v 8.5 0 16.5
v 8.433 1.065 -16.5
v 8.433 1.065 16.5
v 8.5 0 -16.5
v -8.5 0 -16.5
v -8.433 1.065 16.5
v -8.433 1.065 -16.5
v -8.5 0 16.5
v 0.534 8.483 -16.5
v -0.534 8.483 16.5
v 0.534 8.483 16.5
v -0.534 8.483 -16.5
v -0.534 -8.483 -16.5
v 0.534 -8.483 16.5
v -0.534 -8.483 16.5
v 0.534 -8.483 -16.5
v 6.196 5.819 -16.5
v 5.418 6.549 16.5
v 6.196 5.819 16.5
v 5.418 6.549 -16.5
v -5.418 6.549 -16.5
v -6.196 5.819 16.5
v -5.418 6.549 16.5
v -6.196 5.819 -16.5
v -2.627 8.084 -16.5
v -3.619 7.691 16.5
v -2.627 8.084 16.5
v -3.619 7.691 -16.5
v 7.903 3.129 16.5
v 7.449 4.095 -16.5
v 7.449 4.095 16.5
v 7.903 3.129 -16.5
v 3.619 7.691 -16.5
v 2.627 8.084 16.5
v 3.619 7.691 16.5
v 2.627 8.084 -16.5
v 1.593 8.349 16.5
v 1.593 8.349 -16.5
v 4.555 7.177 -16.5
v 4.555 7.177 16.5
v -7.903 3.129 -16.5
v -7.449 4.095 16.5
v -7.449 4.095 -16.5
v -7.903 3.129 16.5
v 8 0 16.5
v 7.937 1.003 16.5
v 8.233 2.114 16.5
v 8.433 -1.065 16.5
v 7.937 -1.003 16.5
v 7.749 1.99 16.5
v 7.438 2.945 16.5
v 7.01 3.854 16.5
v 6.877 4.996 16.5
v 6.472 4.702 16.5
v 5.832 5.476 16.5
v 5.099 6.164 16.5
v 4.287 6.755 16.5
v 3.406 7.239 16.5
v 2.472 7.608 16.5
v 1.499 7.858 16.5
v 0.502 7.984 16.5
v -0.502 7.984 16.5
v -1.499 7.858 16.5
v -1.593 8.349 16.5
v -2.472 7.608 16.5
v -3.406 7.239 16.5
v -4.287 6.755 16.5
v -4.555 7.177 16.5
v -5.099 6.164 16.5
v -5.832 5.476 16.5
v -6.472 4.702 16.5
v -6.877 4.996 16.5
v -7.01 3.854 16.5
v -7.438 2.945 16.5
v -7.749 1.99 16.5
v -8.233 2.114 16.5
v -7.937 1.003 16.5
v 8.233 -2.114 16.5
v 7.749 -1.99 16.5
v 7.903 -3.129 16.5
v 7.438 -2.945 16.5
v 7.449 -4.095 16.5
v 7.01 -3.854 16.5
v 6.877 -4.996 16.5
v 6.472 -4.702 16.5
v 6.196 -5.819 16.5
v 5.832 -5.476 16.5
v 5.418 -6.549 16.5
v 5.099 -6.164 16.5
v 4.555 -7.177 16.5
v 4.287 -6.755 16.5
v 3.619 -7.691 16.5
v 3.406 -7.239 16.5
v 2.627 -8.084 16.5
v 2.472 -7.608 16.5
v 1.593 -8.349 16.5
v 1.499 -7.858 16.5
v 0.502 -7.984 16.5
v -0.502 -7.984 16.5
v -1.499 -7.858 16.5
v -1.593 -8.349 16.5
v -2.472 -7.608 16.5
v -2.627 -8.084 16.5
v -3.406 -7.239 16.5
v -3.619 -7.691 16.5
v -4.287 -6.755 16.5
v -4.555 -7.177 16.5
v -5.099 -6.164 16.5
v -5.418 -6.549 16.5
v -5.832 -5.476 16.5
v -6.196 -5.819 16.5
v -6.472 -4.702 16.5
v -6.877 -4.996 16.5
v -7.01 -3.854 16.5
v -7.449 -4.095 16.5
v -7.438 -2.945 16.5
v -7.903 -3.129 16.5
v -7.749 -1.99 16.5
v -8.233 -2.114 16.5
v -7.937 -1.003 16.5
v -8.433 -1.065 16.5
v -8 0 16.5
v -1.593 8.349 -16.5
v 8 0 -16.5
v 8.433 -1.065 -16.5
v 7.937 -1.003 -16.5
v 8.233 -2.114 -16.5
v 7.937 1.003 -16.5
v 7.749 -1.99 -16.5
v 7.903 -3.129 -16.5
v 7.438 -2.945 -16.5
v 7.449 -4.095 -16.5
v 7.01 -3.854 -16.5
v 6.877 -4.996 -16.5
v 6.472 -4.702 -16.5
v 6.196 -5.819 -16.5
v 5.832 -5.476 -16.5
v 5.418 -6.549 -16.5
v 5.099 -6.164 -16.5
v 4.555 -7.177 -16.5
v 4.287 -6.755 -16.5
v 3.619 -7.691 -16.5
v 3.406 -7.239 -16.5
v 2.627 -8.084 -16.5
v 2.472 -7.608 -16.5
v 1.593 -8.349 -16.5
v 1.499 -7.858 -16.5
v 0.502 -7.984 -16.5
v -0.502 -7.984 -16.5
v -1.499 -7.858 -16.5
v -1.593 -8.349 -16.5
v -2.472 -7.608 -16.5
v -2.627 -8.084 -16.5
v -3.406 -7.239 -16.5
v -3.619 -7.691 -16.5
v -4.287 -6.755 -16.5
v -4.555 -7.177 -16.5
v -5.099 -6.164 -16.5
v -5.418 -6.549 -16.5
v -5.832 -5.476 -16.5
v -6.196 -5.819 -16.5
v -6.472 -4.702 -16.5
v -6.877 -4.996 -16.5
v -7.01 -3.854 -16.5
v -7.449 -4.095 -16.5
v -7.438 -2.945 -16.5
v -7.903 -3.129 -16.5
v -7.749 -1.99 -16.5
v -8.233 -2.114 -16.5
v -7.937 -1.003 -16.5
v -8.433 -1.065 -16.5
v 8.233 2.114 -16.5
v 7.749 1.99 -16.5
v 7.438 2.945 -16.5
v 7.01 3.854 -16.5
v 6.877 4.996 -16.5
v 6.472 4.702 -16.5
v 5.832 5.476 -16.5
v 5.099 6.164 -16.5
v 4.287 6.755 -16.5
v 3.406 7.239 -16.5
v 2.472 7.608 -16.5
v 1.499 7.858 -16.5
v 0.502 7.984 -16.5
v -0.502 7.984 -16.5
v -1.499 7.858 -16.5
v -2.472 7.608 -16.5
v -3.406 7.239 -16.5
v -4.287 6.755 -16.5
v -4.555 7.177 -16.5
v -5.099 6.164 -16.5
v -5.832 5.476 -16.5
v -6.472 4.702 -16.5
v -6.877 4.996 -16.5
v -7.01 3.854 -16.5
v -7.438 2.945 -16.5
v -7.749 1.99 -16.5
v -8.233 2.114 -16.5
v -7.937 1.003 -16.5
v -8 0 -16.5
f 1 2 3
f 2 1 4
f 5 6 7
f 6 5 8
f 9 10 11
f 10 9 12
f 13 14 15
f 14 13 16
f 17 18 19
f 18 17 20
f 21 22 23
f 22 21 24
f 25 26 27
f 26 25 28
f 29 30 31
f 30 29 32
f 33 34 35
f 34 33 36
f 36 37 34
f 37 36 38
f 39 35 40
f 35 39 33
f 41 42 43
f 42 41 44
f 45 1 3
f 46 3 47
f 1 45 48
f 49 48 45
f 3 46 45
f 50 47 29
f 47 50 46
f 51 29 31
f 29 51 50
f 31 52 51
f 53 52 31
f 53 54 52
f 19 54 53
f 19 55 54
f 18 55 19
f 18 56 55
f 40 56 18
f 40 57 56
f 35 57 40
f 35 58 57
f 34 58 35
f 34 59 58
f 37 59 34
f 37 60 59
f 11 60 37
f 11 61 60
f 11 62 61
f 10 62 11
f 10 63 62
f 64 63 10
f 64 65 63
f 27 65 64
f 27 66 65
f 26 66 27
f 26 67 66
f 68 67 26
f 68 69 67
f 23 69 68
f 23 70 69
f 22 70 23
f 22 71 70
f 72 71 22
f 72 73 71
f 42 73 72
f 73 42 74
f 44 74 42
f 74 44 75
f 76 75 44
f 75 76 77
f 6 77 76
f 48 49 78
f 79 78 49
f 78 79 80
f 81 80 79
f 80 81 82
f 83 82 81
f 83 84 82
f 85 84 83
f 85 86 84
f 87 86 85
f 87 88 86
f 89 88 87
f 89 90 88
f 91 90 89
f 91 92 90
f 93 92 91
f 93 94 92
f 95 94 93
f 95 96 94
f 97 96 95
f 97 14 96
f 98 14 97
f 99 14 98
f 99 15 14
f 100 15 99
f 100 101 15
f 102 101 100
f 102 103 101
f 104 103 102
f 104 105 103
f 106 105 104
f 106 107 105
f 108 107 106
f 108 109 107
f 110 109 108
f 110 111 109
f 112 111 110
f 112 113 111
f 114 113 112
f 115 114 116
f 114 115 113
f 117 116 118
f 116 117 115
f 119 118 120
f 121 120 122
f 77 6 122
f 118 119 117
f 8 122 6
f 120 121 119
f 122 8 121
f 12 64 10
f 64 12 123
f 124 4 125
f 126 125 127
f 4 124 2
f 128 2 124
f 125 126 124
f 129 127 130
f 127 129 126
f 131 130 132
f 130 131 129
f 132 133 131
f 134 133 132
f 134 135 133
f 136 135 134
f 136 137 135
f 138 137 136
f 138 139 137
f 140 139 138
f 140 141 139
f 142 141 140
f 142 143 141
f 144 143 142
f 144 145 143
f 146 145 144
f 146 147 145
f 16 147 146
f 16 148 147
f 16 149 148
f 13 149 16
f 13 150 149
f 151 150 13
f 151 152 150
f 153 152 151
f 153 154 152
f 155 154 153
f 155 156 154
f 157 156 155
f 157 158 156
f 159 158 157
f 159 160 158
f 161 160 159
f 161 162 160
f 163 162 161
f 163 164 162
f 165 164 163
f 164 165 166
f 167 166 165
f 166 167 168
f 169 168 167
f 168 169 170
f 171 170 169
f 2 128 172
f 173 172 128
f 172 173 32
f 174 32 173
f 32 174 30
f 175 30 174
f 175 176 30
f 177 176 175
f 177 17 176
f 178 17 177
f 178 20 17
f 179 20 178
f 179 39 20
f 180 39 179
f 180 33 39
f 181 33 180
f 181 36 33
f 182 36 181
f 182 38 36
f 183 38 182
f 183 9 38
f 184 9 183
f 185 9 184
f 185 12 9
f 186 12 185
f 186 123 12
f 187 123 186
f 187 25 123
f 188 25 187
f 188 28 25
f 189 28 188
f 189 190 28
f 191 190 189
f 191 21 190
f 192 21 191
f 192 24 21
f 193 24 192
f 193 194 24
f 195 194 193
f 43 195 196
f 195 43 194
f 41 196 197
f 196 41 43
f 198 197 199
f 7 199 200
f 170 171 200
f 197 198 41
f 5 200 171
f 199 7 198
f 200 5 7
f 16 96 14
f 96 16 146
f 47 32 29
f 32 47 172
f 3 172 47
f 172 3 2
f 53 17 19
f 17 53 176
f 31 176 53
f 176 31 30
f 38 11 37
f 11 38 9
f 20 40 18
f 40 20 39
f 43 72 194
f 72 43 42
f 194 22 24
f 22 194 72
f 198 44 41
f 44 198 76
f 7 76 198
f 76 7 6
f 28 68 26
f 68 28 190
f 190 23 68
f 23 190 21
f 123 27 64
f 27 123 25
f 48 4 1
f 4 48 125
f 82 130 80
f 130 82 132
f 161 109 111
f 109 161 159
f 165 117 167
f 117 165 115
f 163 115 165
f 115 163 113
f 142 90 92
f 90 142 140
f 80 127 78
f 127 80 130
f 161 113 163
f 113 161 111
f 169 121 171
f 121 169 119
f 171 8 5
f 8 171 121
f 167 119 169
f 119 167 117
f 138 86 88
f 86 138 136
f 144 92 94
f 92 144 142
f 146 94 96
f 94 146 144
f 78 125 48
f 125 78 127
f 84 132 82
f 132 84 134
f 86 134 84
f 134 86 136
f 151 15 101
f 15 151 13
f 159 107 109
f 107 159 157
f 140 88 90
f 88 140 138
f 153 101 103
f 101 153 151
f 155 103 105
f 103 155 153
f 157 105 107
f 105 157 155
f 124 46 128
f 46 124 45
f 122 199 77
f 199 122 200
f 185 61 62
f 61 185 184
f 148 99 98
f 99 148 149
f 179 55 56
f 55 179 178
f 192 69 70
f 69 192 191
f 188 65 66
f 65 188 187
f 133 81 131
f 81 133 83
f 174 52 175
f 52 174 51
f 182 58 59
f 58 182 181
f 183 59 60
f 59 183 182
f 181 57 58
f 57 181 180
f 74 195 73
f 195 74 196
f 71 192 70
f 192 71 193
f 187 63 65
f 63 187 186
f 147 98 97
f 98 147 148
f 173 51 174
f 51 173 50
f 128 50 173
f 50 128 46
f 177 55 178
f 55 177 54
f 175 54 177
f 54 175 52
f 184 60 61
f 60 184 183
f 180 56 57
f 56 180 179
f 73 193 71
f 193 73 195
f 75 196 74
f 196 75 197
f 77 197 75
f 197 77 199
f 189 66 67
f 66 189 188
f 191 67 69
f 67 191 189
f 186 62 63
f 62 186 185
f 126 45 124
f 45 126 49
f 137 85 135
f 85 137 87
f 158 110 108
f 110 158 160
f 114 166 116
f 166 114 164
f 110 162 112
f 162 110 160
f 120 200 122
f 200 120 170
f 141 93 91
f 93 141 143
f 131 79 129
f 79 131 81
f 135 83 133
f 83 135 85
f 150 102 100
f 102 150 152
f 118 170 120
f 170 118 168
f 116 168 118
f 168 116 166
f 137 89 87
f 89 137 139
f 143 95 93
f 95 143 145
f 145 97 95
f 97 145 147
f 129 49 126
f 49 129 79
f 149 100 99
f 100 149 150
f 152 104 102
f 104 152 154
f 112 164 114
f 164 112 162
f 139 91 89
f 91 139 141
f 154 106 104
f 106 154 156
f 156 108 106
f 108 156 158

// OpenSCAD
$fn = 50;


difference() {
	union() {
		translate(v = [0, 0, -16.5000000000]) {
			cylinder(h = 33, r = 8.5000000000);
		}
	}
	union() {
		translate(v = [0, 0, -100.0000000000]) {
			cylinder(h = 200, r = 8);
		}
	}
}
